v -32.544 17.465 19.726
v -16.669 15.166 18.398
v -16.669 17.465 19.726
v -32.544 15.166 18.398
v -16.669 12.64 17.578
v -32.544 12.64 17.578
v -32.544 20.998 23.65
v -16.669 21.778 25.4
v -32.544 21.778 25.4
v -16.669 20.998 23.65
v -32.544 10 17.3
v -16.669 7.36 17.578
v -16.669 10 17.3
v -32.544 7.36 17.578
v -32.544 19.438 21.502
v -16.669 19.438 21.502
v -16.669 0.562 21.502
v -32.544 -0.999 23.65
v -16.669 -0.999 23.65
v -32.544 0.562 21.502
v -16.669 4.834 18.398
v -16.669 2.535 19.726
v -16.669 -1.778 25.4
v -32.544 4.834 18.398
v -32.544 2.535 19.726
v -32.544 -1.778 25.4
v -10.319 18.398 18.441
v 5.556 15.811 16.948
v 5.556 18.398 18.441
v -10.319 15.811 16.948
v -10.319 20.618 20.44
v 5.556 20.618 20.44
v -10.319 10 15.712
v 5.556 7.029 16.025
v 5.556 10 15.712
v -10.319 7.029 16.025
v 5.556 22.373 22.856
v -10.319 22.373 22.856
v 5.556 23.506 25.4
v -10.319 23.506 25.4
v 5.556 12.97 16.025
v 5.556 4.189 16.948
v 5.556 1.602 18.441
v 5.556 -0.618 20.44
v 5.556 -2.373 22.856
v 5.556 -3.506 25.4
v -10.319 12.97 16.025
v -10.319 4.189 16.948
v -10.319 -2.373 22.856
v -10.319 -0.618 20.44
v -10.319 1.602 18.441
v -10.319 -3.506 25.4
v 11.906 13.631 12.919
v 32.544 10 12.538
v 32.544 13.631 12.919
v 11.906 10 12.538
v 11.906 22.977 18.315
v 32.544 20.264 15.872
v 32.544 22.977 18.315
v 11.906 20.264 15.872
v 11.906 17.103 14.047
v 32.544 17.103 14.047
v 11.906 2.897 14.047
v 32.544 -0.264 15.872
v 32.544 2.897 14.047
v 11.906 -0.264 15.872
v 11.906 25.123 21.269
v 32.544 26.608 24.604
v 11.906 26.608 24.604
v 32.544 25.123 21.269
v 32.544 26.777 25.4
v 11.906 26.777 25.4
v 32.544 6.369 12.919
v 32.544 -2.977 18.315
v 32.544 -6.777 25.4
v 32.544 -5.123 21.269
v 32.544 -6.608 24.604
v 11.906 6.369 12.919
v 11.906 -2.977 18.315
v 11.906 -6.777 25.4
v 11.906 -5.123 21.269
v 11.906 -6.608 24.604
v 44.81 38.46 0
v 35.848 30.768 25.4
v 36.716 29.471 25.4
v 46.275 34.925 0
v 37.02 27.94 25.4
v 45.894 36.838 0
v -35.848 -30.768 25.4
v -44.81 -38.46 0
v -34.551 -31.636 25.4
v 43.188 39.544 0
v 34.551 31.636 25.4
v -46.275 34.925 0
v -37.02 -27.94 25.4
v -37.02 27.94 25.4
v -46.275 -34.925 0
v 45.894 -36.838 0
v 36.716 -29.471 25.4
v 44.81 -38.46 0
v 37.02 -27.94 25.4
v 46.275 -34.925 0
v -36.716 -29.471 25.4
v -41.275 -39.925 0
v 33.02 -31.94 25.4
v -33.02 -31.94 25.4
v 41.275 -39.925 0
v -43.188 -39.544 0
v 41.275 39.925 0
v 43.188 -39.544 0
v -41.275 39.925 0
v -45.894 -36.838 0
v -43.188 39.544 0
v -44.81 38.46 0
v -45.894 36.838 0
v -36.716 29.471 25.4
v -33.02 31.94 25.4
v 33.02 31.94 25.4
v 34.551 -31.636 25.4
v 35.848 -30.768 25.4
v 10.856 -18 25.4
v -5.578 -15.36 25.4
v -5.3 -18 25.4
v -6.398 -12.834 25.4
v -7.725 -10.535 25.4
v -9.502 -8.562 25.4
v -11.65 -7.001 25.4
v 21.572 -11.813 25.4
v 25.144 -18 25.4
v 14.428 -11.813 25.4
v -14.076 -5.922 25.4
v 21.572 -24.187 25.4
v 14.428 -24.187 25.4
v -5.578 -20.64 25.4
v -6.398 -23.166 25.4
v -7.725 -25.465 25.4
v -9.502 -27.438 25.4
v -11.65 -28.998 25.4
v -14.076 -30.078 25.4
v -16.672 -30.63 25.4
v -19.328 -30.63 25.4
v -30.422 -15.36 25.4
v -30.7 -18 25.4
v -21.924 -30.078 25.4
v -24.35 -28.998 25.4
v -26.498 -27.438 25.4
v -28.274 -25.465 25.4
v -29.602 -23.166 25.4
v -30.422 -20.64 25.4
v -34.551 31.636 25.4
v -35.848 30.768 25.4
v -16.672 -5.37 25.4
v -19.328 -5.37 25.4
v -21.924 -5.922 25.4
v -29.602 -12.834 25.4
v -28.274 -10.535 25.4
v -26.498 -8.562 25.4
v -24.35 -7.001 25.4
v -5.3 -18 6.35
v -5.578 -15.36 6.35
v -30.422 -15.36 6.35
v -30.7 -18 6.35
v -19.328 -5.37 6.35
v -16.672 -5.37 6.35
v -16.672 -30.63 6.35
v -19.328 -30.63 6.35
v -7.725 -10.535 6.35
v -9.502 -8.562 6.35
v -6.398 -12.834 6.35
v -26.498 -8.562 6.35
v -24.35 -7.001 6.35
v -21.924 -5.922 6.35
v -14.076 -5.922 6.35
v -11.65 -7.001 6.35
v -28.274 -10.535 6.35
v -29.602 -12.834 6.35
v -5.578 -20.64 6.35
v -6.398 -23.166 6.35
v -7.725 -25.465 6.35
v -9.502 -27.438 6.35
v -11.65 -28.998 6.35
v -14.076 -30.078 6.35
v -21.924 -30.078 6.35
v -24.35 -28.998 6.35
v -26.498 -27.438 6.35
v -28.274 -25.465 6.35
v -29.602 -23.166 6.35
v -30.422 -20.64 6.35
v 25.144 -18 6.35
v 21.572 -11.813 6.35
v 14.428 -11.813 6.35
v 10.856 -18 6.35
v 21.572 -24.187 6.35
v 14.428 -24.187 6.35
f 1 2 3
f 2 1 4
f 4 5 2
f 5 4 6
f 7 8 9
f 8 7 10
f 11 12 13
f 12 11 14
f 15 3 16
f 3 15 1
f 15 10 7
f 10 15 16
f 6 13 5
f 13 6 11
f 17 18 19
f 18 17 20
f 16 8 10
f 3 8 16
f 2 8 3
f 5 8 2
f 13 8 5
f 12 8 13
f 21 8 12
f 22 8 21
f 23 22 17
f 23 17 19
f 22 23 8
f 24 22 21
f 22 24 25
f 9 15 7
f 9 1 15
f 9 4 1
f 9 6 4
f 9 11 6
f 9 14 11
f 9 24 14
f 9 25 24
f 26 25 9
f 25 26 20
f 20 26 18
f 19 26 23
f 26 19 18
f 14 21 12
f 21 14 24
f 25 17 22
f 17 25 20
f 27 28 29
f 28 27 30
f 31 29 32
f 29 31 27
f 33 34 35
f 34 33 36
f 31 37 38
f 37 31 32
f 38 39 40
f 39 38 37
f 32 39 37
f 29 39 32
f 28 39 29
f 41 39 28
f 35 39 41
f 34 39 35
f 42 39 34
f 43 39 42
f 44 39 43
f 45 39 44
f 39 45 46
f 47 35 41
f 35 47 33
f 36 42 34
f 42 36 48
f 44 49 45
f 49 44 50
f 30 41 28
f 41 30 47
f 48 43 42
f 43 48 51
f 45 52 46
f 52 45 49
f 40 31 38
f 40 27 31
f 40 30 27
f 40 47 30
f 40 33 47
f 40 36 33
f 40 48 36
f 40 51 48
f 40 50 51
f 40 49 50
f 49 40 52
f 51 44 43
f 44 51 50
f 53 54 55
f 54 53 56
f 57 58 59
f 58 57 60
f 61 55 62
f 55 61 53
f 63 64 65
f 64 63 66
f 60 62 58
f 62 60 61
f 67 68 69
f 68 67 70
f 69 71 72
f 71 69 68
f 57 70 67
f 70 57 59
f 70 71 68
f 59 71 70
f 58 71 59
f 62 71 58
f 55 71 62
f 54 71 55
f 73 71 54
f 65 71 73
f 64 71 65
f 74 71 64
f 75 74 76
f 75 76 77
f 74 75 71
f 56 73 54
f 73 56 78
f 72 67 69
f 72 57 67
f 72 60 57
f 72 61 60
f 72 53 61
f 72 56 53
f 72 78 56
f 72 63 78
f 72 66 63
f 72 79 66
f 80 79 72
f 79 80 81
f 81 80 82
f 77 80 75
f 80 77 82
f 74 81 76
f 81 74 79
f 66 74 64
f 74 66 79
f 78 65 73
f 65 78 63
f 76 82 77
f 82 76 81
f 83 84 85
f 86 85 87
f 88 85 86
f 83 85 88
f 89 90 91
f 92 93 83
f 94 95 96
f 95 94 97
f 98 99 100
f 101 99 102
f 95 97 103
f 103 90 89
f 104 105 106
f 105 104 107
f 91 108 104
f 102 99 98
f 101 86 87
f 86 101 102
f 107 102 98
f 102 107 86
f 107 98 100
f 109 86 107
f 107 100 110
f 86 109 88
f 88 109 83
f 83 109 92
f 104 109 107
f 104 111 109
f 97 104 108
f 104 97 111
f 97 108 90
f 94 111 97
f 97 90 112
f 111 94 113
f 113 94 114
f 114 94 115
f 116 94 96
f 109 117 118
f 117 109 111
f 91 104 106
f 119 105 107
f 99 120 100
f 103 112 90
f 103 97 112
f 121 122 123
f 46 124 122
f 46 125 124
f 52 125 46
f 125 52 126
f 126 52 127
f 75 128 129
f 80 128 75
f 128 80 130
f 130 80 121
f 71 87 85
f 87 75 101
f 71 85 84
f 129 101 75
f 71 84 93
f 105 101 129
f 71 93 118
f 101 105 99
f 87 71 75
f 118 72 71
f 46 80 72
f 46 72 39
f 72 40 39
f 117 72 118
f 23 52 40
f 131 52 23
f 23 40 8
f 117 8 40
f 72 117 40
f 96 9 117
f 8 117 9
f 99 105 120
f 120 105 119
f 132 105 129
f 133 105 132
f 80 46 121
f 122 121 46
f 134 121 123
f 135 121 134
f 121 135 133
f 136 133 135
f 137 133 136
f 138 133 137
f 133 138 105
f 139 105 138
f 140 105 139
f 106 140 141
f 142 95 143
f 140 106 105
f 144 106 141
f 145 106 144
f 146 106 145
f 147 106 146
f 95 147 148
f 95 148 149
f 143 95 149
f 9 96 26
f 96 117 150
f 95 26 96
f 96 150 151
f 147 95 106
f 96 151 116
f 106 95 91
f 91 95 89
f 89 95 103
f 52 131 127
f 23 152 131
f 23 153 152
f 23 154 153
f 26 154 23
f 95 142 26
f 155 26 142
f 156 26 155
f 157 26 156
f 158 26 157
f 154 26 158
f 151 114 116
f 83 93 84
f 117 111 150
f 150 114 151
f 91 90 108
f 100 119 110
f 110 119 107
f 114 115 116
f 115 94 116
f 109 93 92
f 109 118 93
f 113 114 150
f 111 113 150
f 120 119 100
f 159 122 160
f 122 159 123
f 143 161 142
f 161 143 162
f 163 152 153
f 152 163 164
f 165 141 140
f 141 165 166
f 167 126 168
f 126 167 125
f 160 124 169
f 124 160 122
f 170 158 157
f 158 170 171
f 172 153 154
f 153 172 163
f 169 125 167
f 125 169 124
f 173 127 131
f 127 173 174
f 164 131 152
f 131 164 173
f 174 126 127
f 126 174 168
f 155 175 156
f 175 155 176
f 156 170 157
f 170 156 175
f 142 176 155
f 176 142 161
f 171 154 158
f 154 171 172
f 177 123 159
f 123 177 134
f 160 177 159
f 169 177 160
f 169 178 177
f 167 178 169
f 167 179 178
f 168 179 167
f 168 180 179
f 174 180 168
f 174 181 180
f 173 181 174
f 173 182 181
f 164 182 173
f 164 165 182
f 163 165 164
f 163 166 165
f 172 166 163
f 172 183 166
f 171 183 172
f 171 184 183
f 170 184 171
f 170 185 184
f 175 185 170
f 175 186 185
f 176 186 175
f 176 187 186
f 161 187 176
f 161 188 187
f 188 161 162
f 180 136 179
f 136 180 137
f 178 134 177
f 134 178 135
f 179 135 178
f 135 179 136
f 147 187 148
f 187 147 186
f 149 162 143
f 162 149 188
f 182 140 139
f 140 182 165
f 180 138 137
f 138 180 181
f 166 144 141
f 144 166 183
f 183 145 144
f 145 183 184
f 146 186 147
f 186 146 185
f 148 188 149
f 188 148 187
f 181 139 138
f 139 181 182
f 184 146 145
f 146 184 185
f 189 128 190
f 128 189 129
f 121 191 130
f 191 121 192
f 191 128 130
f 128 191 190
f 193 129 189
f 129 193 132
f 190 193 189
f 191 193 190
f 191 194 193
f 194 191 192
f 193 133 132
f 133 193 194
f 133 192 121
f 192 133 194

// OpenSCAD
mmpi = 25.4;

height    = 1.00 * mmpi;
top_width = 3.00 * mmpi;
top_depth = 2.50 * mmpi;

bottom_width = 3.25 * mmpi;
bottom_depth = 2.75 * mmpi;

hole_depth   = 0.75 * mmpi;

wheel1_h = ((5/8)    ) * mmpi;
wheel1_r = ((1/1) / 2) * mmpi;

wheel2_h = ((5/8)    ) * mmpi;
wheel2_r = ((9/8) / 2) * mmpi;

wheel3_h = ((13/16)  ) * mmpi;
wheel3_r = ((11/8) /2) * mmpi;

arbor_h  = 2   * mmpi ;
arbor_r  = 1/2 * mmpi ;

nut_h    = ((7/4)    ) * mmpi;
nut_r    = ((9/16) /2) * mmpi;

spacing  = 0.25 * mmpi;
depth    = 0.75 * mmpi;

wheelstack = wheel1_h + wheel2_h + wheel3_h + 2 * spacing;

difference() {
    linear_extrude( height=height, scale=0.8 )
        minkowski() {
            square( size = [ bottom_width, bottom_depth ], center=true );
            circle( r=5 );
        }

    translate( [ -18, -18, 0.25 * mmpi ] )
        cylinder( r=arbor_r, h=arbor_h );
    
    translate( [ 18, -18, 0.25 * mmpi ] )
        cylinder( r=nut_r, h=nut_h, $fn=6 );
    
    translate( [ -wheelstack/2, 10, 30 ] )
        rotate( [0,90,0] ) {
            translate( [ 0, 0, 0 ] )
                cylinder( r=wheel1_r, h=wheel1_h );
            translate( [ 0, 0, wheel1_h + spacing ] )
                cylinder( r=wheel2_r, h=wheel2_h );
            translate( [ 0, 0, wheel1_h + wheel2_h + spacing + spacing ] )
                cylinder( r=wheel3_r, h=wheel3_h );
        }
    }
